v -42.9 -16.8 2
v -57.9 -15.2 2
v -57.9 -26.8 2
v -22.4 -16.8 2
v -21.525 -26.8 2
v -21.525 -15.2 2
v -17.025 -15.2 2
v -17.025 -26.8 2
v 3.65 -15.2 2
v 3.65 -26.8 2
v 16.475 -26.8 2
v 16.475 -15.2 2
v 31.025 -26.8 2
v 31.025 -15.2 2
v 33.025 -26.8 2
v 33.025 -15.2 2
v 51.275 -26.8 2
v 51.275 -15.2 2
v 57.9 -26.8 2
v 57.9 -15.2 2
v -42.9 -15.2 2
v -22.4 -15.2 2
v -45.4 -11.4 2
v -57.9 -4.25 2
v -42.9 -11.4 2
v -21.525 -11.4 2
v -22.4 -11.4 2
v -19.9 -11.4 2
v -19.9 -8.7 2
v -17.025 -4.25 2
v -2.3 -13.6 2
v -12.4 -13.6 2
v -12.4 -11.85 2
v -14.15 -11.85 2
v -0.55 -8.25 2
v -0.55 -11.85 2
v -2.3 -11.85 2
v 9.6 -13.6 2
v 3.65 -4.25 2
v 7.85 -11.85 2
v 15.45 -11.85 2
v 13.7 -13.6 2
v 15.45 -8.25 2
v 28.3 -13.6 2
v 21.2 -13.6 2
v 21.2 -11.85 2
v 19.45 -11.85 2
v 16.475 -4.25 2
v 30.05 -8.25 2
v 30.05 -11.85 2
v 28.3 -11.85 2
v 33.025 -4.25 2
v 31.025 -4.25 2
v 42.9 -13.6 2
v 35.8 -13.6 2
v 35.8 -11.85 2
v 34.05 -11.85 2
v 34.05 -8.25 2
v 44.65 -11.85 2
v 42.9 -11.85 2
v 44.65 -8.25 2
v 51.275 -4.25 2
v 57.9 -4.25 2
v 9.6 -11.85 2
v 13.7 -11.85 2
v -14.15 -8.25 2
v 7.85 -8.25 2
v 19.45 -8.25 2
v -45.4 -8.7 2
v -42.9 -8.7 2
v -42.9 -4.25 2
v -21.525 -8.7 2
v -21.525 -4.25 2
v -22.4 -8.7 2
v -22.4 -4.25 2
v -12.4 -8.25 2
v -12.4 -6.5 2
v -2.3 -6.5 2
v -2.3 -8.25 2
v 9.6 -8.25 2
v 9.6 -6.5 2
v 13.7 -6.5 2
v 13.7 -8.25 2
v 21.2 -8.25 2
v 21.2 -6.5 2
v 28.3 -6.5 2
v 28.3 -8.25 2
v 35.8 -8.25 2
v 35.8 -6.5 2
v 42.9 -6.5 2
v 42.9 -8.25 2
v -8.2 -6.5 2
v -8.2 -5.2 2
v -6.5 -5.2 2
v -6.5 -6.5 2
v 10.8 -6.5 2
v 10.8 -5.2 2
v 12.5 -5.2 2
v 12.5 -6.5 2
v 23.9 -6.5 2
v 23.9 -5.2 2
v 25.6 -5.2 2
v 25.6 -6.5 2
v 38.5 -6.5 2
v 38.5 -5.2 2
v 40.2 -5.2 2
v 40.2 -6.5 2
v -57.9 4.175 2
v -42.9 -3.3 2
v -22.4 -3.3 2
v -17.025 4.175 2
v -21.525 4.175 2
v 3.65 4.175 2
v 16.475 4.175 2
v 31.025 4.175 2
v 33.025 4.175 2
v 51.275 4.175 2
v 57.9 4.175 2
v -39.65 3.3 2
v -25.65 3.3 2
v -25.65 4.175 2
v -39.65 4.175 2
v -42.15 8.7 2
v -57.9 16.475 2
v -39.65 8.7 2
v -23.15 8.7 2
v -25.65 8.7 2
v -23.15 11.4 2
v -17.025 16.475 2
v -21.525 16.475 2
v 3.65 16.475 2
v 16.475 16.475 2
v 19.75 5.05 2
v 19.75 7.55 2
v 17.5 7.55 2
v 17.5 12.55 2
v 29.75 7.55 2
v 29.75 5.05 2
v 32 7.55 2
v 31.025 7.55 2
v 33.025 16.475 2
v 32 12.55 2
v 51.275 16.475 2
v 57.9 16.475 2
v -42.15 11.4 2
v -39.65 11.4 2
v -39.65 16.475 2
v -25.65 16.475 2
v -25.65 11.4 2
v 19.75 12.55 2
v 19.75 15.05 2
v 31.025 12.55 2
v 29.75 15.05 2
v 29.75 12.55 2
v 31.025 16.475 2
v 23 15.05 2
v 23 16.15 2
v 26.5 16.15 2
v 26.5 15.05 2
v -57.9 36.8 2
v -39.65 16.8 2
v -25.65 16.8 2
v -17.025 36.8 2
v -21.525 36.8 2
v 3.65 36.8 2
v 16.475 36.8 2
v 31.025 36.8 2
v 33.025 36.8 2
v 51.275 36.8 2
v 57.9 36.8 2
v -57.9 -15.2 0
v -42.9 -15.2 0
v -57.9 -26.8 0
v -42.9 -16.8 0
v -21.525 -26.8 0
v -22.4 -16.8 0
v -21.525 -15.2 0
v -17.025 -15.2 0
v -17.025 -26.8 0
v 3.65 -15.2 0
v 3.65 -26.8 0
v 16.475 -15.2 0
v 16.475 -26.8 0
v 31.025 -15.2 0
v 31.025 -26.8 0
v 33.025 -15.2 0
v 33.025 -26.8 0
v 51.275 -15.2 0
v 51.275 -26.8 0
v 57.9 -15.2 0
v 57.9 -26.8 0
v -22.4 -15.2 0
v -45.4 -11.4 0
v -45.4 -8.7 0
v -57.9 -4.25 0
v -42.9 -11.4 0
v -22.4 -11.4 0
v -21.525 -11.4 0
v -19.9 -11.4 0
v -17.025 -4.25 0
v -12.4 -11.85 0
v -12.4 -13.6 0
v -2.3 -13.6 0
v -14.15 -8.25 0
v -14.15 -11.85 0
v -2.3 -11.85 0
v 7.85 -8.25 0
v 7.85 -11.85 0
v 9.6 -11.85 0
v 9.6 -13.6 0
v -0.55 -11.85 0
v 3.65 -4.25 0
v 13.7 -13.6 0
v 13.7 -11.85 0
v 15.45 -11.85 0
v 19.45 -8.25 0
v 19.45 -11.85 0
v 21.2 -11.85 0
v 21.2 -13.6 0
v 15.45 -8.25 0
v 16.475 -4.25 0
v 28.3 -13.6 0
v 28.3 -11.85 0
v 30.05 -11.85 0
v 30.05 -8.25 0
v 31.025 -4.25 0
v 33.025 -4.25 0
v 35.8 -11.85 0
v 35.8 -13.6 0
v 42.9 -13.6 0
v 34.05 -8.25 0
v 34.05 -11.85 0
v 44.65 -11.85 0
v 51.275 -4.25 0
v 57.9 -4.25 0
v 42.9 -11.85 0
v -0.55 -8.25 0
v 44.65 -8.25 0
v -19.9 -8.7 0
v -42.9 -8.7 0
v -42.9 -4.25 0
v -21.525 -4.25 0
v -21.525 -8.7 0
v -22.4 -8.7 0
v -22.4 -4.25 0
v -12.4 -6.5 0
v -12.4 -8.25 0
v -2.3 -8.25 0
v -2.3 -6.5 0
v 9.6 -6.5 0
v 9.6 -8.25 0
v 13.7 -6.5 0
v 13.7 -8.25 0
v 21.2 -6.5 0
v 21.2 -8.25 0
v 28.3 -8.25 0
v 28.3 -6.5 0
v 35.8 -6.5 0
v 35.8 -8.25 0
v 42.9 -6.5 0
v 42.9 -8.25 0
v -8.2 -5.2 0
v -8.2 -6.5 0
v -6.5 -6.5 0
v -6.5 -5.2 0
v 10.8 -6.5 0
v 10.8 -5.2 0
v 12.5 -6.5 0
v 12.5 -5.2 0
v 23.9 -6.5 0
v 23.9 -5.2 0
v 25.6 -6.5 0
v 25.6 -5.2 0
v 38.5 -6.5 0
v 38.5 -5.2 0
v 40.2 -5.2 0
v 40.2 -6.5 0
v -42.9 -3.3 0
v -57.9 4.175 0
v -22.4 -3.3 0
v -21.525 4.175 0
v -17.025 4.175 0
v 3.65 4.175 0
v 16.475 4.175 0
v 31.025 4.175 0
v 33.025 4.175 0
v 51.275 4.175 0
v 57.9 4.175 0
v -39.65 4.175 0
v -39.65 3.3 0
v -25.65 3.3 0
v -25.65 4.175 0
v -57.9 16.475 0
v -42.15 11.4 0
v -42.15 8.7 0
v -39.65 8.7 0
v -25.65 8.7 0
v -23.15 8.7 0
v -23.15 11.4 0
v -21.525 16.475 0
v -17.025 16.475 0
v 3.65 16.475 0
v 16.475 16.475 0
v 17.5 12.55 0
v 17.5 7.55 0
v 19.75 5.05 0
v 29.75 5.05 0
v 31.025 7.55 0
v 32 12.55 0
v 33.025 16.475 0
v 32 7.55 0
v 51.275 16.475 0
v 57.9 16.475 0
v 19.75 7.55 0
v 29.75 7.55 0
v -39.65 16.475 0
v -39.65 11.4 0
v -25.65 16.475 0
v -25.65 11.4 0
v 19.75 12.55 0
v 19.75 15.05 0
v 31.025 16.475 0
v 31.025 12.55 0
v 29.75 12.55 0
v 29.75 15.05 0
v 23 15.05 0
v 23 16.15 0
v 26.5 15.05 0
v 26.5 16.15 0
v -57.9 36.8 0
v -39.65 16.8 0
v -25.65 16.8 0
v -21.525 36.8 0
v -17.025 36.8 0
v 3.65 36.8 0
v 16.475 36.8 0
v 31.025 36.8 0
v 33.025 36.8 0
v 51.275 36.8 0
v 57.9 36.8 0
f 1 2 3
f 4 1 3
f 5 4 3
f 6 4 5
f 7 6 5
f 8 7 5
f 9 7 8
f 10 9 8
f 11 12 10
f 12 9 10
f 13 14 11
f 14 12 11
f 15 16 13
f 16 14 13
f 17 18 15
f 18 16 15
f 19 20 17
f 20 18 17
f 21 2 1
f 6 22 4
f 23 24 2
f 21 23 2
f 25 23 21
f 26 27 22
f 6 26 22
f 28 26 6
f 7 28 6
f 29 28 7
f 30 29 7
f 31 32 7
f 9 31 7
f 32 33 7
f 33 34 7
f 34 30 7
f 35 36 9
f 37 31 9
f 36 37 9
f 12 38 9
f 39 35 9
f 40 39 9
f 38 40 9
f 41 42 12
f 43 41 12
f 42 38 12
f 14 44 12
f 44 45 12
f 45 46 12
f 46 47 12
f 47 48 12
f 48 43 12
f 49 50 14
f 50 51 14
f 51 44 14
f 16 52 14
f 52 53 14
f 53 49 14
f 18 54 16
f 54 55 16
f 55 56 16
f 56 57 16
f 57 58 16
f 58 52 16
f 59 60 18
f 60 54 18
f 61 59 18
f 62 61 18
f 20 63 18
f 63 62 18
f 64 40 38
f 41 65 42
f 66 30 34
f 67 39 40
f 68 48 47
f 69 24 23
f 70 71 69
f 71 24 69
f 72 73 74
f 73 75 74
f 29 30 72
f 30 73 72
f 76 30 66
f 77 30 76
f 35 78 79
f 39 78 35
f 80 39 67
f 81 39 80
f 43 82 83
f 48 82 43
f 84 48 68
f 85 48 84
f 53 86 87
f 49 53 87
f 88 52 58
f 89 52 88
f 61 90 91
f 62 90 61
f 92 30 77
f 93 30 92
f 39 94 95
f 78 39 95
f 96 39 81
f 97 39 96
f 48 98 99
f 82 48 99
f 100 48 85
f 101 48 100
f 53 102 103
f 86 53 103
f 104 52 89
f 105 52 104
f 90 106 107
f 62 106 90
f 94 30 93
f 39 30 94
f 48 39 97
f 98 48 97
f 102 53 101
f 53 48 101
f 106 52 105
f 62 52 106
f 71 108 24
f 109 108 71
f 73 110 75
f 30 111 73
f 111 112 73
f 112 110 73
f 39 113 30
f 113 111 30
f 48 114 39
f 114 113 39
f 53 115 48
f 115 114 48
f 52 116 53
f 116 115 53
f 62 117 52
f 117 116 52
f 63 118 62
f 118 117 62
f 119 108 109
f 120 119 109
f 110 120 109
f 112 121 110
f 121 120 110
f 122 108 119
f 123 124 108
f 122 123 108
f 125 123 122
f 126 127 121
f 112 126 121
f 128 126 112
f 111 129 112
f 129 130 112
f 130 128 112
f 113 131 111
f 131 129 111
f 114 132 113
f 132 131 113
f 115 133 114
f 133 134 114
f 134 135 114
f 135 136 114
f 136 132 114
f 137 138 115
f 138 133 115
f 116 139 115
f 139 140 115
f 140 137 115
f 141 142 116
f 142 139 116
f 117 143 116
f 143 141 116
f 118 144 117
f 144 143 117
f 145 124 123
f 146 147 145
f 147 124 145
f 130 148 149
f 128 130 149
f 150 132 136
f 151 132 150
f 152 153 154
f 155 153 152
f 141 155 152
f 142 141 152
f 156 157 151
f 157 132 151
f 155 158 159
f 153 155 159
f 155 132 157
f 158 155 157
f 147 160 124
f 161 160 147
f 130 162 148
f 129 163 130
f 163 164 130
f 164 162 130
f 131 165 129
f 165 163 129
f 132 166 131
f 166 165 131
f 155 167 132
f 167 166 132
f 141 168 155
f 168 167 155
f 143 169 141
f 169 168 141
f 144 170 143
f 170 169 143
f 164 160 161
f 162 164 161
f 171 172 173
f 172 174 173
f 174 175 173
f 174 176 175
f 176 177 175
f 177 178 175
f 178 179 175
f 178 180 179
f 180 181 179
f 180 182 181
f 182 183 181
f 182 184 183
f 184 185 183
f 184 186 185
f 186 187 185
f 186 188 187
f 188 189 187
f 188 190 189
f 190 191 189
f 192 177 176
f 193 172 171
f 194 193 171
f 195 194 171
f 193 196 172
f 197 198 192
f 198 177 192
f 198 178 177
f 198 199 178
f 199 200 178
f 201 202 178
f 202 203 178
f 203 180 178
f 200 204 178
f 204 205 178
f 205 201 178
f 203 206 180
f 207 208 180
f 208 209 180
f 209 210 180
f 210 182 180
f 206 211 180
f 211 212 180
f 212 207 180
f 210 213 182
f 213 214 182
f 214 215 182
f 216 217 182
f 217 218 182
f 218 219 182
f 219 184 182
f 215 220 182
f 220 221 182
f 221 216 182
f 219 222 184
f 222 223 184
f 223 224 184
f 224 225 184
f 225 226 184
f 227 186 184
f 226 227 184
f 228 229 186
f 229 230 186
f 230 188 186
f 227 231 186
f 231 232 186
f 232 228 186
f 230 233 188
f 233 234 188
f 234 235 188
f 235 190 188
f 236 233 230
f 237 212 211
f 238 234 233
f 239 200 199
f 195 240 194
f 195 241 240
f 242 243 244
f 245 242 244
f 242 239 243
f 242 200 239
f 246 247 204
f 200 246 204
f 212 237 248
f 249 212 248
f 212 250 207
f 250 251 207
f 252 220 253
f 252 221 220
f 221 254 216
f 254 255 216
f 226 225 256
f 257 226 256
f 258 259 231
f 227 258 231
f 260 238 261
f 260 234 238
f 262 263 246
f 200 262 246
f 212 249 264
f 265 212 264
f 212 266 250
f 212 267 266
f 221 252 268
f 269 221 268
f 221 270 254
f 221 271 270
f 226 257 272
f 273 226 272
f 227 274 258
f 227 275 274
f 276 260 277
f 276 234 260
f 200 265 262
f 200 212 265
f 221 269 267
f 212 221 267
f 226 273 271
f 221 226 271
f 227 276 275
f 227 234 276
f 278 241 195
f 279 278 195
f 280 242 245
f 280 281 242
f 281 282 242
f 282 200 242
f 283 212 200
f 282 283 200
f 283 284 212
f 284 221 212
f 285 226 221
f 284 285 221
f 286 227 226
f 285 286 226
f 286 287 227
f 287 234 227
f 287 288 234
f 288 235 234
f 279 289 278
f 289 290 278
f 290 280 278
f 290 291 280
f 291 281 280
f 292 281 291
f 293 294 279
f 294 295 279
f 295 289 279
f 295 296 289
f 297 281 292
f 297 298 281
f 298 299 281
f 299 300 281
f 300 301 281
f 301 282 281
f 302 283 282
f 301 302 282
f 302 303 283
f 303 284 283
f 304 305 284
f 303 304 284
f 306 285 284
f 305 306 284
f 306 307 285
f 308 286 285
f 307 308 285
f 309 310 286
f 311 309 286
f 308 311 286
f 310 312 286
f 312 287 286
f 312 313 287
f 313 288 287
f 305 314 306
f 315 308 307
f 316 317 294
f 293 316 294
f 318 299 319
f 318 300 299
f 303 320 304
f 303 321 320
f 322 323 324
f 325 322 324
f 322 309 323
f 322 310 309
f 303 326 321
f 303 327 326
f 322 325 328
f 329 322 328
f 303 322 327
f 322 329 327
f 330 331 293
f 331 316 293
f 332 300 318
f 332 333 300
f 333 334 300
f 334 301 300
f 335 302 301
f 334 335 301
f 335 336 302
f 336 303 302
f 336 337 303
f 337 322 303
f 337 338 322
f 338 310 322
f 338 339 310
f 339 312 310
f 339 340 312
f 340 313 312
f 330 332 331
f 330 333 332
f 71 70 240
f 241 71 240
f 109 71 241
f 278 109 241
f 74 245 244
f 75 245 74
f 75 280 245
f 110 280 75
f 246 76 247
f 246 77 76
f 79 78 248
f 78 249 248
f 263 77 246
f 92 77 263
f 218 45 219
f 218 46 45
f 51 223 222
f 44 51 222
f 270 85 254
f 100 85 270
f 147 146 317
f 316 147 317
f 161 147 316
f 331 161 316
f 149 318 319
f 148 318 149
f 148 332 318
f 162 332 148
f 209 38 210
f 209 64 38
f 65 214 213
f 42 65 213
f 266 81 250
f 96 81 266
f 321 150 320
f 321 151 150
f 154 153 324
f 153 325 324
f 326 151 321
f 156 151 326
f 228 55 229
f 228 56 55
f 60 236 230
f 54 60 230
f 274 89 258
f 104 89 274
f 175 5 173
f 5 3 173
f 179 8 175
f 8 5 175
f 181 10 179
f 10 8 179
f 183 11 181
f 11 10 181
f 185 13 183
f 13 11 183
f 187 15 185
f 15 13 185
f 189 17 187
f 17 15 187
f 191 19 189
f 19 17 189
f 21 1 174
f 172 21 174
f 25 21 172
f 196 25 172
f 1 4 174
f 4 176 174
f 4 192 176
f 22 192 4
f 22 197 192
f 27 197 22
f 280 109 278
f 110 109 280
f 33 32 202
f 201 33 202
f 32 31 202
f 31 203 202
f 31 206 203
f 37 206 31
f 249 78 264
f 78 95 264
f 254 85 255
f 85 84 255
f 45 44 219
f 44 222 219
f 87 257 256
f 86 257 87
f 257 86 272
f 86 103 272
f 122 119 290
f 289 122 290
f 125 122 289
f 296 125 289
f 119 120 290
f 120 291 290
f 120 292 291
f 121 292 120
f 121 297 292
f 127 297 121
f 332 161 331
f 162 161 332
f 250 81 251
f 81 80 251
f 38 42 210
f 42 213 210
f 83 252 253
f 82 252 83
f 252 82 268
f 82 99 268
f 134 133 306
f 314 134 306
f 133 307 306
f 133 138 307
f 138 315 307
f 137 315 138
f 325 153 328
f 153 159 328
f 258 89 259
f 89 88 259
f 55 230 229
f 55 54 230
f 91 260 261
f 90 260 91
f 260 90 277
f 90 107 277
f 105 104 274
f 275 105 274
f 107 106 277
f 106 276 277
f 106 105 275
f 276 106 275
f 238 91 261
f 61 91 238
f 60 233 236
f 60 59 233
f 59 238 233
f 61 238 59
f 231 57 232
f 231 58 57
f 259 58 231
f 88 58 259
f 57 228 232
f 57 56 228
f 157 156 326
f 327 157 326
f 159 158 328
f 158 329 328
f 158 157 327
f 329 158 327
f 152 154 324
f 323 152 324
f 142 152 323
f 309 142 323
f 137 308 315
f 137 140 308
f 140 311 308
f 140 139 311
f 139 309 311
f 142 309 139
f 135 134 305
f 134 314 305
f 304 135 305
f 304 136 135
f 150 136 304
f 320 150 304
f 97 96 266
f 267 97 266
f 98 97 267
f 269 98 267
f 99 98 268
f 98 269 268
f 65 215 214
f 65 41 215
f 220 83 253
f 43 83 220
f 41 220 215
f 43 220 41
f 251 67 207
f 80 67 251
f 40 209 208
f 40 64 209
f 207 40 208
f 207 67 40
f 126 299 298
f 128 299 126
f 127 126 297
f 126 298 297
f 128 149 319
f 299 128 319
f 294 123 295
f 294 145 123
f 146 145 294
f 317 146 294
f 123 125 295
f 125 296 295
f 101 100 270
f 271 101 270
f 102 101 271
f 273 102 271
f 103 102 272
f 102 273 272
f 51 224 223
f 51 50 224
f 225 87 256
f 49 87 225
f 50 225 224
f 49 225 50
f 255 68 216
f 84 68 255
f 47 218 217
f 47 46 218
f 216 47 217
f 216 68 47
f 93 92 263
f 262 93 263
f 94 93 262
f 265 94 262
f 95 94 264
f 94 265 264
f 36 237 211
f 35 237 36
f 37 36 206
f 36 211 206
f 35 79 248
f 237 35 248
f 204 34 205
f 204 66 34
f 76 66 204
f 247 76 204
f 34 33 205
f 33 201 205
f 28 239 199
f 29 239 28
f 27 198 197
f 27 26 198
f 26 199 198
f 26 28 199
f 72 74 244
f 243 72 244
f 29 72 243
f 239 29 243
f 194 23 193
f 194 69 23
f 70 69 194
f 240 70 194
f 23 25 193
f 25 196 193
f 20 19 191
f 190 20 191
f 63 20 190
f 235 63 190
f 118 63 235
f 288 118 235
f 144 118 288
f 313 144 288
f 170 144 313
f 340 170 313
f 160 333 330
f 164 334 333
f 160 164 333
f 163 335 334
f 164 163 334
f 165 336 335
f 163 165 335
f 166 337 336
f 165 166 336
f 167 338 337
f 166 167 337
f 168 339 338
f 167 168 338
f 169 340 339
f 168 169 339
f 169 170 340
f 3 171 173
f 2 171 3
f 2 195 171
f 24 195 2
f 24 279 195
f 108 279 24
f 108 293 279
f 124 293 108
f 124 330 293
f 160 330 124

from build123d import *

# Parameters (mm, degrees)
SKETCH1_W           = 105.8
SKETCH1_H           = 53.6
BOSS_EXTRUDE1_DEPTH = 2
SKETCH2_W           = 4.1
SKETCH2_H           = 7.1
SKETCH2_W_2         = 20.5
SKETCH2_H_2         = 13.5
SKETCH2_W_3         = 10
SKETCH2_H_3         = 10
SKETCH2_W_4         = 7.1
SKETCH2_W_5         = 14
SKETCH2_W_6         = 10.1
CUT_EXTRUDE2_DEPTH  = 60.335065518
SKETCH4_W           = 2.5
SKETCH4_H           = 2.7
SKETCH4_W_2         = 1.75
SKETCH4_H_2         = 3.6
SKETCH4_W_3         = 1.7
SKETCH4_H_3         = 1.3
SKETCH4_W_4         = 10.6
SKETCH4_H_4         = 8.4
SKETCH4_W_5         = 3.5
SKETCH4_H_5         = 11.1
SKETCH4_W_6         = 14.5
SKETCH4_H_6         = 5
CUT_EXTRUDE5_DEPTH  = 10
BOSS_EXTRUDE2_DEPTH = 2


with BuildPart() as part:
    # Sketch1 → Boss-Extrude1 (new body)
    with BuildSketch(Plane.XY):
        Rectangle(SKETCH1_W, SKETCH1_H)
    extrude(amount=BOSS_EXTRUDE1_DEPTH)

    # Sketch2 → Cut-Extrude2 (cut, through all)
    with BuildSketch(Plane.XY):
        with Locations((11.65, -10.05)):
            Rectangle(SKETCH2_W, SKETCH2_H)
        with Locations((-32.65, -10.05)):
            Rectangle(SKETCH2_W_2, SKETCH2_H_2)
        with Locations((24.75, 10.05)):
            Rectangle(SKETCH2_W_3, SKETCH2_H_3)
        with Locations((39.35, -10.05)):
            Rectangle(SKETCH2_W_4, SKETCH2_H)
        with Locations((-32.65, 10.05)):
            Rectangle(SKETCH2_W_5, SKETCH2_H_2)
        with Locations((24.75, -10.05)):
            Rectangle(SKETCH2_W_4, SKETCH2_H)
        with Locations((-7.35, -10.05)):
            Rectangle(SKETCH2_W_6, SKETCH2_H)
    extrude(amount=CUT_EXTRUDE2_DEPTH, mode=Mode.SUBTRACT)

    # Sketch4 → Cut-Extrude5 (cut)
    with BuildSketch(Plane.XY.offset(2)):
        with Locations((-24.4, 10.05)):
            Rectangle(SKETCH4_W, SKETCH4_H)
        with Locations((-40.9, 10.05)):
            Rectangle(SKETCH4_W, SKETCH4_H)
        with Locations((-44.15, -10.05)):
            Rectangle(SKETCH4_W, SKETCH4_H)
        with Locations((-21.15, -10.05)):
            Rectangle(SKETCH4_W, SKETCH4_H)
        with Locations((-13.275, -10.05)):
            Rectangle(SKETCH4_W_2, SKETCH4_H_2)
        with Locations((-1.425, -10.05)):
            Rectangle(SKETCH4_W_2, SKETCH4_H_2)
        with Locations((-7.35, -5.85)):
            Rectangle(SKETCH4_W_3, SKETCH4_H_3)
        with Locations((11.65, -5.85)):
            Rectangle(SKETCH4_W_3, SKETCH4_H_3)
        with Locations((14.575, -10.05)):
            Rectangle(SKETCH4_W_2, SKETCH4_H_2)
        with Locations((8.725, -10.05)):
            Rectangle(SKETCH4_W_2, SKETCH4_H_2)
        with Locations((29.175, -10.05)):
            Rectangle(SKETCH4_W_2, SKETCH4_H_2)
        with Locations((20.325, -10.05)):
            Rectangle(SKETCH4_W_2, SKETCH4_H_2)
        with Locations((24.75, -5.85)):
            Rectangle(SKETCH4_W_3, SKETCH4_H_3)
        with Locations((39.35, -10.05)):
            Rectangle(SKETCH4_W_4, SKETCH4_H_2)
        with Locations((39.35, -9.4)):
            Rectangle(SKETCH4_W_3, SKETCH4_H_4)
        with Locations((24.75, 10.6)):
            Rectangle(SKETCH4_W_5, SKETCH4_H_5)
        with Locations((24.75, 10.05)):
            Rectangle(SKETCH4_W_6, SKETCH4_H_6)
    extrude(amount=-CUT_EXTRUDE5_DEPTH, mode=Mode.SUBTRACT)

    # Sketch5 → Boss-Extrude2 (add)
    with BuildSketch(Plane.XY):
        Polygon((-52.9, 26.8), (-52.9, -26.8), (-57.9, -26.8), (-57.9, 36.8), (57.9, 36.8), (57.9, -26.8), (52.9, -26.8), (52.9, 26.8), align=None)
    extrude(amount=BOSS_EXTRUDE2_DEPTH)


solid = part.part
